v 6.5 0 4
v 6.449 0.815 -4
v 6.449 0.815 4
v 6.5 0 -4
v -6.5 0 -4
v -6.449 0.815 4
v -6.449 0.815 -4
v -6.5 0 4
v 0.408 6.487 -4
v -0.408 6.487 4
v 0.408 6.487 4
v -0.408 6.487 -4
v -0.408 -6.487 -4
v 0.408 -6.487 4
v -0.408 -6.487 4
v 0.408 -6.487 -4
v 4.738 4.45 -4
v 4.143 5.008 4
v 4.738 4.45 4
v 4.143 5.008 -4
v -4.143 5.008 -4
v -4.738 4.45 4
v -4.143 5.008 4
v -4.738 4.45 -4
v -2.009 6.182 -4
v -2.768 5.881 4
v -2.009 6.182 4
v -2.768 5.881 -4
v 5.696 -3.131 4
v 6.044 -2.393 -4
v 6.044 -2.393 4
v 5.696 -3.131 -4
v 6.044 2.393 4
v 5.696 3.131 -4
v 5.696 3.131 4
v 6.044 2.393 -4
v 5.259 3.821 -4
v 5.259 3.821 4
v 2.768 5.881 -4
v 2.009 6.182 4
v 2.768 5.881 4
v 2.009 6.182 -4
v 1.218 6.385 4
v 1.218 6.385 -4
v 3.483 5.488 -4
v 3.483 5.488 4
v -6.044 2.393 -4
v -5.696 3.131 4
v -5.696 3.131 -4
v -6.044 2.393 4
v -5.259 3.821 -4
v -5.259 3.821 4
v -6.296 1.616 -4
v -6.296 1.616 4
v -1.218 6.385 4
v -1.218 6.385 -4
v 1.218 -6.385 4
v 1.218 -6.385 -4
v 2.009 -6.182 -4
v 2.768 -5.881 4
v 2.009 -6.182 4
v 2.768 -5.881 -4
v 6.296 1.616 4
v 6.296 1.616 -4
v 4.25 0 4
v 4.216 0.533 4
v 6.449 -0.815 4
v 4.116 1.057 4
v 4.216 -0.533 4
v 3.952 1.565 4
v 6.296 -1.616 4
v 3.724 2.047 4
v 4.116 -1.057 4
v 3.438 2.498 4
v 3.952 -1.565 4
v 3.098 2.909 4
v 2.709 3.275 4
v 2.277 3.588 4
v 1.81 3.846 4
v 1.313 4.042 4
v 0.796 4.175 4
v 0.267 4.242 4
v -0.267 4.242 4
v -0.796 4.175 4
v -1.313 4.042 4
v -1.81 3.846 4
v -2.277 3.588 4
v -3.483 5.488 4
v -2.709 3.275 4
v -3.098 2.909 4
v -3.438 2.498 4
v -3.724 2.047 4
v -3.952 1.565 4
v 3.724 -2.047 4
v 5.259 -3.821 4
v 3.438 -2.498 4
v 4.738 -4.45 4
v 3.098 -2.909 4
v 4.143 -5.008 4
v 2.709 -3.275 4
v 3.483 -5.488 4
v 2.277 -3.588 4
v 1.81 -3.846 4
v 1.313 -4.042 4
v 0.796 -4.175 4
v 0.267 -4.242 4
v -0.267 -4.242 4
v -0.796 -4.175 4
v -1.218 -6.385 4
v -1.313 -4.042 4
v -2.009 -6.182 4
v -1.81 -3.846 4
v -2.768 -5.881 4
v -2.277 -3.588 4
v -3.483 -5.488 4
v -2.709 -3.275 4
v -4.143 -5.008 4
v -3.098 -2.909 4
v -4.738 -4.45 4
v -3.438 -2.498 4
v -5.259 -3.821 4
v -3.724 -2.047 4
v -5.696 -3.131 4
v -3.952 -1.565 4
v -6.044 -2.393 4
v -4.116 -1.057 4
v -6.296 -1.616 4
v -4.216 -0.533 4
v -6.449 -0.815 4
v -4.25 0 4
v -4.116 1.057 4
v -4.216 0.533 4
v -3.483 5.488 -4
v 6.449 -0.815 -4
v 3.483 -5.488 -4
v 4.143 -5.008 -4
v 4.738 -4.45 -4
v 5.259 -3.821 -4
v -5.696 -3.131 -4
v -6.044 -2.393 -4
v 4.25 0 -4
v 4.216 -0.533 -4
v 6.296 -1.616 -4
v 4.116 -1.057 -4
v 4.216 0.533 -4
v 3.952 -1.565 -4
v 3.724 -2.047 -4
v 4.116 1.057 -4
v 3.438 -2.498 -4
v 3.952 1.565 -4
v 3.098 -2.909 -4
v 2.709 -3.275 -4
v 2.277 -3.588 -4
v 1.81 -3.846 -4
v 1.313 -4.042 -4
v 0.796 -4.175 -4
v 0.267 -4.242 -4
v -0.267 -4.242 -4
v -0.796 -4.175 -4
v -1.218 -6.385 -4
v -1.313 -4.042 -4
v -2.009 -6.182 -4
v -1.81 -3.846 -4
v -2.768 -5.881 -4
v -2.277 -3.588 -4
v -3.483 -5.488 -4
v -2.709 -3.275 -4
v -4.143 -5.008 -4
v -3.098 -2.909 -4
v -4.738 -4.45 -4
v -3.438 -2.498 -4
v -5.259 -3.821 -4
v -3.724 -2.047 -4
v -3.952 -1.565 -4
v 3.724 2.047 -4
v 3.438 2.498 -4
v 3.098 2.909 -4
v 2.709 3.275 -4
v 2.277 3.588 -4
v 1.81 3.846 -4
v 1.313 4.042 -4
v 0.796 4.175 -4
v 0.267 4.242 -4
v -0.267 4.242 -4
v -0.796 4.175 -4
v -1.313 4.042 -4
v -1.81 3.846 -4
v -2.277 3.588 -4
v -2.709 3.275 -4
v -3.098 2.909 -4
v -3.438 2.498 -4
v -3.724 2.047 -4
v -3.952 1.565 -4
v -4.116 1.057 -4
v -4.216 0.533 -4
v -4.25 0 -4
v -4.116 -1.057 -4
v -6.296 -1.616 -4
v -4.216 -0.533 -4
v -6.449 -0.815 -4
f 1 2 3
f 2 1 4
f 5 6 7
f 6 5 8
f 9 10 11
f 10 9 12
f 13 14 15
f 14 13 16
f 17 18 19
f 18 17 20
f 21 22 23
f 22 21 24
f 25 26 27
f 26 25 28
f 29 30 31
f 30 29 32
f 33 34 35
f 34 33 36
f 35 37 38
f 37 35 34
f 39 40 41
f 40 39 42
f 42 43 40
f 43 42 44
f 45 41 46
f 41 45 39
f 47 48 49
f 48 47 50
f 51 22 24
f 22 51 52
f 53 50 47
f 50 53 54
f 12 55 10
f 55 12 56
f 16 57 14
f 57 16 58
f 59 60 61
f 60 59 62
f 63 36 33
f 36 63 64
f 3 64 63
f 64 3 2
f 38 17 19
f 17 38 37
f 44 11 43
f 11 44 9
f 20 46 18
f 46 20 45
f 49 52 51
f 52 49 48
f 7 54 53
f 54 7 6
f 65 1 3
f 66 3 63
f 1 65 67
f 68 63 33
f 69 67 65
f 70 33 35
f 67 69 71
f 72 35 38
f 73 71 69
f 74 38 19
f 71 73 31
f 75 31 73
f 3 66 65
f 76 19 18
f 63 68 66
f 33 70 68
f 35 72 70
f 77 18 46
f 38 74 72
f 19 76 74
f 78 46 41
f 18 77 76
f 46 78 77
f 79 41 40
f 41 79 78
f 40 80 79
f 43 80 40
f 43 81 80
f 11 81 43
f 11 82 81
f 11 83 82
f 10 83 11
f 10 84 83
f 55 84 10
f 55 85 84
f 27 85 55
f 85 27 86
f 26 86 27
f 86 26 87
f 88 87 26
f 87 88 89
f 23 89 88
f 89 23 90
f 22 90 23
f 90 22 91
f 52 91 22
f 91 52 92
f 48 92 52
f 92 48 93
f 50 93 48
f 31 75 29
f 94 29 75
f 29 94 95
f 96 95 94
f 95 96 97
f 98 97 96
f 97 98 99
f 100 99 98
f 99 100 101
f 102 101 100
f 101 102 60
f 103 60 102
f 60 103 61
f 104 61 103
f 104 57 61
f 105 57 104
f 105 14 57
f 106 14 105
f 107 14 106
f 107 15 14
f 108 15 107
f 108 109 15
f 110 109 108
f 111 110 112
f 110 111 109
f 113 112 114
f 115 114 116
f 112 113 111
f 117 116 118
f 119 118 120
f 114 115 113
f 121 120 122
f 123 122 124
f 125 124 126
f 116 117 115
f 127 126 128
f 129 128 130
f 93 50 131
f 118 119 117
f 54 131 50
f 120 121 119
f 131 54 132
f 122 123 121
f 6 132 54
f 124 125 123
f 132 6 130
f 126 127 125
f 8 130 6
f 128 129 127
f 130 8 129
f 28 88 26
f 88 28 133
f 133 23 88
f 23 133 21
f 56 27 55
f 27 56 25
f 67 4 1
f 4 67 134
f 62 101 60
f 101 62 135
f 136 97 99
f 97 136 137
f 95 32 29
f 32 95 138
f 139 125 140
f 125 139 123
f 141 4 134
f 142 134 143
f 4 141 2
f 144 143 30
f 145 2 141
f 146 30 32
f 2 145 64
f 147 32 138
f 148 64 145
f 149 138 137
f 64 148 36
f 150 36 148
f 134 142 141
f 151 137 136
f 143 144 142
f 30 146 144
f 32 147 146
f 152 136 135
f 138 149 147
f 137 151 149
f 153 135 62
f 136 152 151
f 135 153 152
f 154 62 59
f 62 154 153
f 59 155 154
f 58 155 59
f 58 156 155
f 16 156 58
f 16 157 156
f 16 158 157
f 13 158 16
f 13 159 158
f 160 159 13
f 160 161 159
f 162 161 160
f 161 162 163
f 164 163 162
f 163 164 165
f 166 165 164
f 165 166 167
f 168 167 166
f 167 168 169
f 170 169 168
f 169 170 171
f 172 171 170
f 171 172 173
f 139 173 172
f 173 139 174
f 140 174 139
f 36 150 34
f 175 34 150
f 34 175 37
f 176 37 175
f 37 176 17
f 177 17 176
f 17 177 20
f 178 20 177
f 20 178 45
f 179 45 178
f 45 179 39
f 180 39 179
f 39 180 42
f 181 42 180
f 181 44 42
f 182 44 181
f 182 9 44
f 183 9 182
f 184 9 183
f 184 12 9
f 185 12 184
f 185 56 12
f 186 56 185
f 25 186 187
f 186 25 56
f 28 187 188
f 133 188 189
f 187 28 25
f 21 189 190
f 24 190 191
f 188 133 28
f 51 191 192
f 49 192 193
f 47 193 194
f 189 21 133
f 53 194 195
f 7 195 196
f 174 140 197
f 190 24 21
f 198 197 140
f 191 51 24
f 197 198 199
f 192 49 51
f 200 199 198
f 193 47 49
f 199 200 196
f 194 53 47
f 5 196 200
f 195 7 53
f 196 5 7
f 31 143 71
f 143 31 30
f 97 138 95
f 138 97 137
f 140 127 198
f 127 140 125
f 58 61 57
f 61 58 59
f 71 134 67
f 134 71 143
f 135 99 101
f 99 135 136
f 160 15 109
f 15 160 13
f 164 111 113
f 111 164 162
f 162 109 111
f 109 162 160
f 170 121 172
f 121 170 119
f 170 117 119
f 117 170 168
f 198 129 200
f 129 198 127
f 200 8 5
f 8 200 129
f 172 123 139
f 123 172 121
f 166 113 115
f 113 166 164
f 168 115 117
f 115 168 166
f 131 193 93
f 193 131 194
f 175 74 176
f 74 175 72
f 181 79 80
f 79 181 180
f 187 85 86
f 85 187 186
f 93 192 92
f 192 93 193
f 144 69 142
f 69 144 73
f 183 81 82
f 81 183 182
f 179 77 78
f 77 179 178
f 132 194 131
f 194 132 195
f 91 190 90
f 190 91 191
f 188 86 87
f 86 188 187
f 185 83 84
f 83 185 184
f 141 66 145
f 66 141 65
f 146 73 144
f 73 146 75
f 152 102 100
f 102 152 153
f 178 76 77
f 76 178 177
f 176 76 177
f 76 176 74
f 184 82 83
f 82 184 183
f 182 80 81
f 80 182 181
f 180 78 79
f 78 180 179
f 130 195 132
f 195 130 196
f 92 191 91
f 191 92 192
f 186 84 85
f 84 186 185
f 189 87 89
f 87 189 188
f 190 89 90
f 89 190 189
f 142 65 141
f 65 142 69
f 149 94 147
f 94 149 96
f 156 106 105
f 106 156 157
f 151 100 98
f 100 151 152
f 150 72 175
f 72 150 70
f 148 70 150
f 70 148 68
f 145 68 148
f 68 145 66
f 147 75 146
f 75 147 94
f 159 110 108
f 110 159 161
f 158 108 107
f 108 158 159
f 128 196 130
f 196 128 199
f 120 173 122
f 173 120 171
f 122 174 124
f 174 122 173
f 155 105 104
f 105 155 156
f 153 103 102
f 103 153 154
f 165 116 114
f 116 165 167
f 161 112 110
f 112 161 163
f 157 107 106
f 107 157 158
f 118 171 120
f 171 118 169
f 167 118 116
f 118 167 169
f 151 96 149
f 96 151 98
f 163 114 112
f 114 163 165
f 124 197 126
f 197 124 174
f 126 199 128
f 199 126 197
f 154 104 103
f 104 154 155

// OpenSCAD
$fn = 50;


difference() {
	union() {
		translate(v = [0, 0, -4.0000000000]) {
			cylinder(h = 8, r = 6.5000000000);
		}
	}
	union() {
		translate(v = [0, 0, -100.0000000000]) {
			cylinder(h = 200, r = 4.2500000000);
		}
	}
}
